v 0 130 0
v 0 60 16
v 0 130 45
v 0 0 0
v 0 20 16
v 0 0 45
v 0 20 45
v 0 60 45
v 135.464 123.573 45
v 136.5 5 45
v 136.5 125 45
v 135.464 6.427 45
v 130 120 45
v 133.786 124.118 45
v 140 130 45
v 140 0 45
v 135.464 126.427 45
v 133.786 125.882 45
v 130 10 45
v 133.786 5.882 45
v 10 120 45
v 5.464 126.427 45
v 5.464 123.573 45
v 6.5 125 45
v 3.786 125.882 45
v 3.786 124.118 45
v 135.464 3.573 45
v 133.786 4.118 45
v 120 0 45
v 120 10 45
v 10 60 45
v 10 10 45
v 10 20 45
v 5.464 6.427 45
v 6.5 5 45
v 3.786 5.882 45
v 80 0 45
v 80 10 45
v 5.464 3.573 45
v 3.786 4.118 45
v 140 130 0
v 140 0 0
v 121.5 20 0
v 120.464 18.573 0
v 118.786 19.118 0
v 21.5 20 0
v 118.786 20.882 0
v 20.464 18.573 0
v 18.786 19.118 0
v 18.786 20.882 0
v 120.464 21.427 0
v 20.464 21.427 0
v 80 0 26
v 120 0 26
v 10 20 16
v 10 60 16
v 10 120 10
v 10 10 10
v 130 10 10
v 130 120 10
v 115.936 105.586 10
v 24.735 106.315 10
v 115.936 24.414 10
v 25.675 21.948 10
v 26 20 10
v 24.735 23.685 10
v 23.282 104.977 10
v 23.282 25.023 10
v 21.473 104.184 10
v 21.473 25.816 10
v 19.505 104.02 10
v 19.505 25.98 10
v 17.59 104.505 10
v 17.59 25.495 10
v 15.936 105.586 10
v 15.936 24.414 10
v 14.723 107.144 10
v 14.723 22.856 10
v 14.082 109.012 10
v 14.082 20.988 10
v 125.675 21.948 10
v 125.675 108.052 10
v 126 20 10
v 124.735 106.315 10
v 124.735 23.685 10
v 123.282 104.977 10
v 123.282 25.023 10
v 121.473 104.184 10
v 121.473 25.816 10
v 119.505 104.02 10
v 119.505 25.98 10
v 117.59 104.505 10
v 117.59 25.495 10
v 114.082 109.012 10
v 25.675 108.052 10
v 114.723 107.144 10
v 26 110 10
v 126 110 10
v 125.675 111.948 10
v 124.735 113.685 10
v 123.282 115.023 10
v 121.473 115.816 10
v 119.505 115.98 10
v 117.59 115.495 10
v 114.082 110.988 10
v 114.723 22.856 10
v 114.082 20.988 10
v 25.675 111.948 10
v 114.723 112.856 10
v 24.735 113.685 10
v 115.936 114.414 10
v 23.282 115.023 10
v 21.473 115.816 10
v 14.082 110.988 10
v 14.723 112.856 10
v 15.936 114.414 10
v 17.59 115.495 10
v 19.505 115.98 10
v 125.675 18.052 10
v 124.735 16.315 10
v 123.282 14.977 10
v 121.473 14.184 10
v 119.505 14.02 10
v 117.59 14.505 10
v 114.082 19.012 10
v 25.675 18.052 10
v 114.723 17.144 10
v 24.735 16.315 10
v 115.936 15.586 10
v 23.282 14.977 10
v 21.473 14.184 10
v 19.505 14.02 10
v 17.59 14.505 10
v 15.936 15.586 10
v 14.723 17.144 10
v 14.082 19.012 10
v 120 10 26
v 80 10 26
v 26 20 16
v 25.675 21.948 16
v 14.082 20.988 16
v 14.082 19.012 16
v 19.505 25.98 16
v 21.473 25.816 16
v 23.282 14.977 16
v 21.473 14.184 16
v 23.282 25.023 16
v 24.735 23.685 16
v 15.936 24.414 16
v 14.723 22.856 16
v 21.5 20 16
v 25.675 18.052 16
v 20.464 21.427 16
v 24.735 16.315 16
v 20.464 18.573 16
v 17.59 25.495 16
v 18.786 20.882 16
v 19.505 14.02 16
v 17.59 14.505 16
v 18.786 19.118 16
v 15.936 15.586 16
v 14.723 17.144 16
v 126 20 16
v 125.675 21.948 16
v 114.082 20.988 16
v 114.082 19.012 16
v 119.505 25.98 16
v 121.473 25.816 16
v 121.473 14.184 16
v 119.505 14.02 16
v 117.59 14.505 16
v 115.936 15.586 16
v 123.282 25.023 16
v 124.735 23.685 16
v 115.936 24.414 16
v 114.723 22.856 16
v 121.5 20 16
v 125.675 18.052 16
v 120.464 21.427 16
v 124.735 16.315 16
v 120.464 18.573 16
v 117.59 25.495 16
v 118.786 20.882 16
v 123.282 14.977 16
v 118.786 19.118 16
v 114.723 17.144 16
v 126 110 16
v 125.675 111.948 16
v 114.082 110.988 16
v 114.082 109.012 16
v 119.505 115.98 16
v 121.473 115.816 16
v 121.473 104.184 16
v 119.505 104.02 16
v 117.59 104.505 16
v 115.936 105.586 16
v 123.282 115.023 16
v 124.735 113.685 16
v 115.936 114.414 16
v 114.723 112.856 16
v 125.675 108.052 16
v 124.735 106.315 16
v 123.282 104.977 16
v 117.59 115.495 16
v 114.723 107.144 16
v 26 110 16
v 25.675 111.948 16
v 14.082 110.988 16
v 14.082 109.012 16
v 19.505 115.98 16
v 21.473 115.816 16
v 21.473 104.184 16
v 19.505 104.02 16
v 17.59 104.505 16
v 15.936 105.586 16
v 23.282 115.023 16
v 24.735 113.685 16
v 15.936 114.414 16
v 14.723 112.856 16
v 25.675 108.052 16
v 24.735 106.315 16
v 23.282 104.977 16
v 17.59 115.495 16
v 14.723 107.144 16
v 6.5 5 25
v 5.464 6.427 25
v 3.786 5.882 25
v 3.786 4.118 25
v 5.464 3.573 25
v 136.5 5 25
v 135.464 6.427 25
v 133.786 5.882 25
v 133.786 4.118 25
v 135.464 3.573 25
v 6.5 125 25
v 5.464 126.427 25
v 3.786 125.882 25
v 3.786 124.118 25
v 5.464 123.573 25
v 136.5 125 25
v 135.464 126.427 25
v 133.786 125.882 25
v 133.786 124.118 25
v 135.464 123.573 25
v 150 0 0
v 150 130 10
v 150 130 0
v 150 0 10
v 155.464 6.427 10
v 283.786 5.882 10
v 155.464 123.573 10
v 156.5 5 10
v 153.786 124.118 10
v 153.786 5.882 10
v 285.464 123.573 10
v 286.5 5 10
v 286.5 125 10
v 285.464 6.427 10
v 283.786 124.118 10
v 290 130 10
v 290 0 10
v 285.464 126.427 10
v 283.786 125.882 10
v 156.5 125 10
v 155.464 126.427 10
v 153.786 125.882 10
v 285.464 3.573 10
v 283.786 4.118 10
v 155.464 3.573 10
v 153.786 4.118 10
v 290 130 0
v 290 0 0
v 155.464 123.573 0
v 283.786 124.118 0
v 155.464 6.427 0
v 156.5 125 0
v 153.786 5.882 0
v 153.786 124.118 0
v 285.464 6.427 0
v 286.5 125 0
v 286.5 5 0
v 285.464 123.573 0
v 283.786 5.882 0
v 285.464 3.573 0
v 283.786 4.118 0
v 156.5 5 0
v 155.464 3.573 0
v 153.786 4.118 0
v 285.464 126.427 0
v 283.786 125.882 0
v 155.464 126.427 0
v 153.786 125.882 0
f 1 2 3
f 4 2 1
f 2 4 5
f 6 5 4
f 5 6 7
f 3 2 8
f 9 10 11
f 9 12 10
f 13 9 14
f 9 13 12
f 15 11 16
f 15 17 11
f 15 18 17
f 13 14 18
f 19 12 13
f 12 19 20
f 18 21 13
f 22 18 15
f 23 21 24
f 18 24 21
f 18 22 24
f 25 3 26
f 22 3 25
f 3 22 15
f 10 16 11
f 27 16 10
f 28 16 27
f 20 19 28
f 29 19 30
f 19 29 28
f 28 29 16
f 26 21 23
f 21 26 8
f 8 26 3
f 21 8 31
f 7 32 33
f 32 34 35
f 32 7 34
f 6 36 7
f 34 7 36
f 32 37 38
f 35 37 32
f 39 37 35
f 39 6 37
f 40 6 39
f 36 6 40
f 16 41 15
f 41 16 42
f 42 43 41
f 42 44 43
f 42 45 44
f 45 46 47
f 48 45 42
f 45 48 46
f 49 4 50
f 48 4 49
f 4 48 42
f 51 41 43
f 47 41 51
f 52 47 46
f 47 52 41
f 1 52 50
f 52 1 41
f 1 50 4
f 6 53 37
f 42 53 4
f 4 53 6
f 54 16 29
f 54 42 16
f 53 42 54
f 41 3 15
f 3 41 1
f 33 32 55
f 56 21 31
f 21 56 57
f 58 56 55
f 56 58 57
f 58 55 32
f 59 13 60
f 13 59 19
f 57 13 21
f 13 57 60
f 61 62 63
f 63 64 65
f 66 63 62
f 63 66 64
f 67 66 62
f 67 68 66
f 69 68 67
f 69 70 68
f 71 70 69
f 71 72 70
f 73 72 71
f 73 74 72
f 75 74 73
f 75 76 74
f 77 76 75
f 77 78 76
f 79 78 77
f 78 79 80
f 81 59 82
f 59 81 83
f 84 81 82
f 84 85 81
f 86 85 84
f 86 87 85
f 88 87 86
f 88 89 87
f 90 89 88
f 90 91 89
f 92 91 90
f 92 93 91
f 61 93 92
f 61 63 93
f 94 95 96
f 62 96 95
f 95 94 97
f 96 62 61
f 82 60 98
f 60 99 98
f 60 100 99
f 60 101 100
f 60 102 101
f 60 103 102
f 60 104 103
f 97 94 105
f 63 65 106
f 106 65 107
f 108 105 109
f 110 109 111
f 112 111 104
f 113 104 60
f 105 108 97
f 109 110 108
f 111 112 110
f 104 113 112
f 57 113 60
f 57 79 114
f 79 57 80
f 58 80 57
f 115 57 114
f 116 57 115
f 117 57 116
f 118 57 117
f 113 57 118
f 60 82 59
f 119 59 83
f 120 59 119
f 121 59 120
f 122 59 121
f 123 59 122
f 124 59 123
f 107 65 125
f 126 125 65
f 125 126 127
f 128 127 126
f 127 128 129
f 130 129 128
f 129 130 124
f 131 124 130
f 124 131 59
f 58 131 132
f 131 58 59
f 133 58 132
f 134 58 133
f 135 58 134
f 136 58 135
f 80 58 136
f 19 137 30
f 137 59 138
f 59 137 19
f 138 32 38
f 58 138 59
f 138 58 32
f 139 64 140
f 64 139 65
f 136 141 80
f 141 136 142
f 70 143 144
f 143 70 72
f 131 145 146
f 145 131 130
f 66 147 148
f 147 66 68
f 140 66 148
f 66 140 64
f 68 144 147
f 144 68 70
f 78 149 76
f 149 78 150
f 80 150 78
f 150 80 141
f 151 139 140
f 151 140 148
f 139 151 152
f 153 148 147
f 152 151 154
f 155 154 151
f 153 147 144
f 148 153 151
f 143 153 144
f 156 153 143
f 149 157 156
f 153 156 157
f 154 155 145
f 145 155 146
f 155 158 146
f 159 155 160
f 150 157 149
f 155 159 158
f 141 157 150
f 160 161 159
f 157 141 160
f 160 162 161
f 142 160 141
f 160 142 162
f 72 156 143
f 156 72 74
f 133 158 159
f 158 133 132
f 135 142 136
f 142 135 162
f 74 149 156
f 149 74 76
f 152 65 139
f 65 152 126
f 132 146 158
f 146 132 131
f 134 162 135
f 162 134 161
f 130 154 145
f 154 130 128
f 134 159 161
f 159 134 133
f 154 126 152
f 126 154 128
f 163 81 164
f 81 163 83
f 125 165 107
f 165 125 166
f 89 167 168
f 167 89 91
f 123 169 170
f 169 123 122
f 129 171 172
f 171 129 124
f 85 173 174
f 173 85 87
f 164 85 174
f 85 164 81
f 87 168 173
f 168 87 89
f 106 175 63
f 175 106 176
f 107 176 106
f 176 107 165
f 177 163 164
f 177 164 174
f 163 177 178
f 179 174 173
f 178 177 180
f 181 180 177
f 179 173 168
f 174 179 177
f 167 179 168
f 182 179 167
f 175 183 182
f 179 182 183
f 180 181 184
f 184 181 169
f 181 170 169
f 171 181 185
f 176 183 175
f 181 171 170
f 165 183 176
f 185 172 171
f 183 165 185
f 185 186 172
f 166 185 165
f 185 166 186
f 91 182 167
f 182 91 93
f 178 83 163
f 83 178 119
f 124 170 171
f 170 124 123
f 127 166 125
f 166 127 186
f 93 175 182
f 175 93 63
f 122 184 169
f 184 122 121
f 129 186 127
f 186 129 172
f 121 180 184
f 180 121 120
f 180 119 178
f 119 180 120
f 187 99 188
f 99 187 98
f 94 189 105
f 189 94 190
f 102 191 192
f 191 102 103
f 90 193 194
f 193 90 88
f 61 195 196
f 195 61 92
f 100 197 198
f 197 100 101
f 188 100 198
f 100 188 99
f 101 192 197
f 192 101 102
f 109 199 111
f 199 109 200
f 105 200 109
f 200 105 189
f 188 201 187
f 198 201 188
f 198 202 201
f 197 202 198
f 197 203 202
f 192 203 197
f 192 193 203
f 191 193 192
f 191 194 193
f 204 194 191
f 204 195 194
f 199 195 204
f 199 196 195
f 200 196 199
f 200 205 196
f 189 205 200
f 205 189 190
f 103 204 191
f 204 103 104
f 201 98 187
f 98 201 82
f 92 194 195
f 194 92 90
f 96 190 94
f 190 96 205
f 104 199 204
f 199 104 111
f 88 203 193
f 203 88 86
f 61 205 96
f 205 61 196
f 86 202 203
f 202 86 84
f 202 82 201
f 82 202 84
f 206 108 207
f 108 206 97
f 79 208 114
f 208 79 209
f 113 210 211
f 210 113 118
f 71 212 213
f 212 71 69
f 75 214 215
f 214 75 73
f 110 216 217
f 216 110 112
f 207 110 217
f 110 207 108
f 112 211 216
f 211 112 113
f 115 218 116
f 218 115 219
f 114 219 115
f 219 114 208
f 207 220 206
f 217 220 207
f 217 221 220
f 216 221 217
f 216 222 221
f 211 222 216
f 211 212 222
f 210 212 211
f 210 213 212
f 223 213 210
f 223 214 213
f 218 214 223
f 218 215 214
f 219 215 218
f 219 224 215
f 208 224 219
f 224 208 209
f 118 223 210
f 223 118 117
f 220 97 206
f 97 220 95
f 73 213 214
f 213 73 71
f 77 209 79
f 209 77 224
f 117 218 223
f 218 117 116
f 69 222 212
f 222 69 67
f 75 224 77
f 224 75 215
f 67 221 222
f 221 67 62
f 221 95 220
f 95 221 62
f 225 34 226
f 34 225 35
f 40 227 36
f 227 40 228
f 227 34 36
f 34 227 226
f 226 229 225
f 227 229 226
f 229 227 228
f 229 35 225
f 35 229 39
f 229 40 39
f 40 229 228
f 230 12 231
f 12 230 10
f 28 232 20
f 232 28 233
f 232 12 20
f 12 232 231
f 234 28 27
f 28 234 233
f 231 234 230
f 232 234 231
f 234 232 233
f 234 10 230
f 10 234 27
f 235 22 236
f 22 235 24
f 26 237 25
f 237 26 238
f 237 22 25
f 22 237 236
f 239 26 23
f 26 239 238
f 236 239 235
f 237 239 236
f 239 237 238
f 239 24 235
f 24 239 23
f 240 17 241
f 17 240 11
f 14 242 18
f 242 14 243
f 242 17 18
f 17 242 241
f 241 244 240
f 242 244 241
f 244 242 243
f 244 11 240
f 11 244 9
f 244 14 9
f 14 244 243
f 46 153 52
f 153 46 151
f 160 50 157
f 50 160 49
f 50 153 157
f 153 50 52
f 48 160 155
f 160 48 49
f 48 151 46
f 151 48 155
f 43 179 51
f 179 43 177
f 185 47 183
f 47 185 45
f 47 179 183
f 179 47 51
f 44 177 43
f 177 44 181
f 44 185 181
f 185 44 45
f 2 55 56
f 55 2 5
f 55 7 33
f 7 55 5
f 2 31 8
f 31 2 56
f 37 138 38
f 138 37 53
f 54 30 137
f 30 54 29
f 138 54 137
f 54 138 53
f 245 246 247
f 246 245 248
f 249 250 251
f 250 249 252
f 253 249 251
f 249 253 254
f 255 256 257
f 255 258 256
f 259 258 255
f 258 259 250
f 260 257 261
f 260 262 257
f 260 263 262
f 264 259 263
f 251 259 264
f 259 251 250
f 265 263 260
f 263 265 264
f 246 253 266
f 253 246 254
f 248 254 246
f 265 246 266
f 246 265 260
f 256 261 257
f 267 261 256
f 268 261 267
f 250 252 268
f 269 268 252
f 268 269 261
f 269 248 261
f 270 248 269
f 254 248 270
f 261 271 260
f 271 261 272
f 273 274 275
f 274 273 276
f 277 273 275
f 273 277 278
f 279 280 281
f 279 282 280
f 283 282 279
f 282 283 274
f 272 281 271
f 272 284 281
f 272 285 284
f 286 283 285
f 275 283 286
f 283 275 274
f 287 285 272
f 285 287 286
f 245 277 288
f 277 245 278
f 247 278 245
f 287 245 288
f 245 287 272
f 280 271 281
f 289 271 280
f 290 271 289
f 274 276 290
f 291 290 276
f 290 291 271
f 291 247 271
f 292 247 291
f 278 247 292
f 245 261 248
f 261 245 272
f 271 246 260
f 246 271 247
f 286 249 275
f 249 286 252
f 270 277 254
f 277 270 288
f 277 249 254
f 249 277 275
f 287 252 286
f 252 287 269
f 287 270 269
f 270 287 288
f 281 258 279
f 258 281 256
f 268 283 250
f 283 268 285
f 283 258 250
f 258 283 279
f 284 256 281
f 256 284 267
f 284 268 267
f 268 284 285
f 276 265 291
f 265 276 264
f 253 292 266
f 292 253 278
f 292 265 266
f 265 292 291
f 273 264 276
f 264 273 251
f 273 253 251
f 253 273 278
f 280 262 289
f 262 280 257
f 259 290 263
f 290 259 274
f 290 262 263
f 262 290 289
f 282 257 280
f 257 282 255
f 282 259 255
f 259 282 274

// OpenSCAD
/*Customizer Variables*/
height=120;//[5:1:100]
width=110;//[5:1:100]
depth=35;//[5:1:100]
wall=10;//[0.5:0.2:5]
tollerance=1.2;//[0.5:0.2:5]
screw_r= 1.5;


module base()
{   difference()
    {
        union()
        {
            difference()
            {
               union()
                {
                    cube([height+2*wall,width+2*wall,depth+wall]);
                    //translate([-wall,-wall,depth]) cube([height+4*wall,width+4*wall,wall]);
                    //translate([wall,wall,wall])cube([height,width,depth]);
                
                }   
                
                
                translate([wall,wall,wall])cube([height,width,depth]);
                
                
                
                
            }
        
        translate([wall+10,wall+10,wall])
                    cylinder(6,6,6);
        translate([wall+height-10,wall+10,wall])
                    cylinder(6,6,6);
        translate([wall+height-10,wall+width-10,wall])
                    cylinder(6,6,6);
        translate([wall+10,wall+width-10,wall])
                    cylinder(6,6,6);
        
        }
        // place for holes
        
        translate([wall/2,wall/2,depth-10])
            cylinder(200,screw_r,screw_r);
        translate([wall+height+wall/2,wall/2,depth-10])
            cylinder(200,screw_r,screw_r);
        translate([wall/2,wall/2+width+wall,depth-10])
            cylinder(200,screw_r,screw_r);
        translate([wall/2+wall+height,wall/2+wall+width,depth-10])
            cylinder(200,screw_r,screw_r);
        
        translate([wall+10,wall+10,0])
            cylinder(200,screw_r,screw_r);
        translate([wall+height-10,wall+10,0])
            cylinder(200,screw_r,screw_r);
        
        translate([0,wall+10,wall+6])
            cube([wall,40,depth]);
        translate([wall+70,0,wall+16])
            cube([40,wall,depth]);
    }
}
module cover()
{  
   difference(){
    cube([height+wall*2,width+wall*2,wall]);
    translate([wall/2,wall/2,0])
        cylinder(200,screw_r,screw_r);
    translate([wall+height+wall/2,wall/2,0])
        cylinder(200,screw_r,screw_r);
    translate([wall/2,wall/2+width+wall,0])
        cylinder(200,screw_r,screw_r);
    translate([wall/2+wall+height,wall/2+wall+width,0])   
       cylinder(200,screw_r,screw_r);
   } 
}
render()base();
translate([height+wall*2+10,0,0])
render()cover();
